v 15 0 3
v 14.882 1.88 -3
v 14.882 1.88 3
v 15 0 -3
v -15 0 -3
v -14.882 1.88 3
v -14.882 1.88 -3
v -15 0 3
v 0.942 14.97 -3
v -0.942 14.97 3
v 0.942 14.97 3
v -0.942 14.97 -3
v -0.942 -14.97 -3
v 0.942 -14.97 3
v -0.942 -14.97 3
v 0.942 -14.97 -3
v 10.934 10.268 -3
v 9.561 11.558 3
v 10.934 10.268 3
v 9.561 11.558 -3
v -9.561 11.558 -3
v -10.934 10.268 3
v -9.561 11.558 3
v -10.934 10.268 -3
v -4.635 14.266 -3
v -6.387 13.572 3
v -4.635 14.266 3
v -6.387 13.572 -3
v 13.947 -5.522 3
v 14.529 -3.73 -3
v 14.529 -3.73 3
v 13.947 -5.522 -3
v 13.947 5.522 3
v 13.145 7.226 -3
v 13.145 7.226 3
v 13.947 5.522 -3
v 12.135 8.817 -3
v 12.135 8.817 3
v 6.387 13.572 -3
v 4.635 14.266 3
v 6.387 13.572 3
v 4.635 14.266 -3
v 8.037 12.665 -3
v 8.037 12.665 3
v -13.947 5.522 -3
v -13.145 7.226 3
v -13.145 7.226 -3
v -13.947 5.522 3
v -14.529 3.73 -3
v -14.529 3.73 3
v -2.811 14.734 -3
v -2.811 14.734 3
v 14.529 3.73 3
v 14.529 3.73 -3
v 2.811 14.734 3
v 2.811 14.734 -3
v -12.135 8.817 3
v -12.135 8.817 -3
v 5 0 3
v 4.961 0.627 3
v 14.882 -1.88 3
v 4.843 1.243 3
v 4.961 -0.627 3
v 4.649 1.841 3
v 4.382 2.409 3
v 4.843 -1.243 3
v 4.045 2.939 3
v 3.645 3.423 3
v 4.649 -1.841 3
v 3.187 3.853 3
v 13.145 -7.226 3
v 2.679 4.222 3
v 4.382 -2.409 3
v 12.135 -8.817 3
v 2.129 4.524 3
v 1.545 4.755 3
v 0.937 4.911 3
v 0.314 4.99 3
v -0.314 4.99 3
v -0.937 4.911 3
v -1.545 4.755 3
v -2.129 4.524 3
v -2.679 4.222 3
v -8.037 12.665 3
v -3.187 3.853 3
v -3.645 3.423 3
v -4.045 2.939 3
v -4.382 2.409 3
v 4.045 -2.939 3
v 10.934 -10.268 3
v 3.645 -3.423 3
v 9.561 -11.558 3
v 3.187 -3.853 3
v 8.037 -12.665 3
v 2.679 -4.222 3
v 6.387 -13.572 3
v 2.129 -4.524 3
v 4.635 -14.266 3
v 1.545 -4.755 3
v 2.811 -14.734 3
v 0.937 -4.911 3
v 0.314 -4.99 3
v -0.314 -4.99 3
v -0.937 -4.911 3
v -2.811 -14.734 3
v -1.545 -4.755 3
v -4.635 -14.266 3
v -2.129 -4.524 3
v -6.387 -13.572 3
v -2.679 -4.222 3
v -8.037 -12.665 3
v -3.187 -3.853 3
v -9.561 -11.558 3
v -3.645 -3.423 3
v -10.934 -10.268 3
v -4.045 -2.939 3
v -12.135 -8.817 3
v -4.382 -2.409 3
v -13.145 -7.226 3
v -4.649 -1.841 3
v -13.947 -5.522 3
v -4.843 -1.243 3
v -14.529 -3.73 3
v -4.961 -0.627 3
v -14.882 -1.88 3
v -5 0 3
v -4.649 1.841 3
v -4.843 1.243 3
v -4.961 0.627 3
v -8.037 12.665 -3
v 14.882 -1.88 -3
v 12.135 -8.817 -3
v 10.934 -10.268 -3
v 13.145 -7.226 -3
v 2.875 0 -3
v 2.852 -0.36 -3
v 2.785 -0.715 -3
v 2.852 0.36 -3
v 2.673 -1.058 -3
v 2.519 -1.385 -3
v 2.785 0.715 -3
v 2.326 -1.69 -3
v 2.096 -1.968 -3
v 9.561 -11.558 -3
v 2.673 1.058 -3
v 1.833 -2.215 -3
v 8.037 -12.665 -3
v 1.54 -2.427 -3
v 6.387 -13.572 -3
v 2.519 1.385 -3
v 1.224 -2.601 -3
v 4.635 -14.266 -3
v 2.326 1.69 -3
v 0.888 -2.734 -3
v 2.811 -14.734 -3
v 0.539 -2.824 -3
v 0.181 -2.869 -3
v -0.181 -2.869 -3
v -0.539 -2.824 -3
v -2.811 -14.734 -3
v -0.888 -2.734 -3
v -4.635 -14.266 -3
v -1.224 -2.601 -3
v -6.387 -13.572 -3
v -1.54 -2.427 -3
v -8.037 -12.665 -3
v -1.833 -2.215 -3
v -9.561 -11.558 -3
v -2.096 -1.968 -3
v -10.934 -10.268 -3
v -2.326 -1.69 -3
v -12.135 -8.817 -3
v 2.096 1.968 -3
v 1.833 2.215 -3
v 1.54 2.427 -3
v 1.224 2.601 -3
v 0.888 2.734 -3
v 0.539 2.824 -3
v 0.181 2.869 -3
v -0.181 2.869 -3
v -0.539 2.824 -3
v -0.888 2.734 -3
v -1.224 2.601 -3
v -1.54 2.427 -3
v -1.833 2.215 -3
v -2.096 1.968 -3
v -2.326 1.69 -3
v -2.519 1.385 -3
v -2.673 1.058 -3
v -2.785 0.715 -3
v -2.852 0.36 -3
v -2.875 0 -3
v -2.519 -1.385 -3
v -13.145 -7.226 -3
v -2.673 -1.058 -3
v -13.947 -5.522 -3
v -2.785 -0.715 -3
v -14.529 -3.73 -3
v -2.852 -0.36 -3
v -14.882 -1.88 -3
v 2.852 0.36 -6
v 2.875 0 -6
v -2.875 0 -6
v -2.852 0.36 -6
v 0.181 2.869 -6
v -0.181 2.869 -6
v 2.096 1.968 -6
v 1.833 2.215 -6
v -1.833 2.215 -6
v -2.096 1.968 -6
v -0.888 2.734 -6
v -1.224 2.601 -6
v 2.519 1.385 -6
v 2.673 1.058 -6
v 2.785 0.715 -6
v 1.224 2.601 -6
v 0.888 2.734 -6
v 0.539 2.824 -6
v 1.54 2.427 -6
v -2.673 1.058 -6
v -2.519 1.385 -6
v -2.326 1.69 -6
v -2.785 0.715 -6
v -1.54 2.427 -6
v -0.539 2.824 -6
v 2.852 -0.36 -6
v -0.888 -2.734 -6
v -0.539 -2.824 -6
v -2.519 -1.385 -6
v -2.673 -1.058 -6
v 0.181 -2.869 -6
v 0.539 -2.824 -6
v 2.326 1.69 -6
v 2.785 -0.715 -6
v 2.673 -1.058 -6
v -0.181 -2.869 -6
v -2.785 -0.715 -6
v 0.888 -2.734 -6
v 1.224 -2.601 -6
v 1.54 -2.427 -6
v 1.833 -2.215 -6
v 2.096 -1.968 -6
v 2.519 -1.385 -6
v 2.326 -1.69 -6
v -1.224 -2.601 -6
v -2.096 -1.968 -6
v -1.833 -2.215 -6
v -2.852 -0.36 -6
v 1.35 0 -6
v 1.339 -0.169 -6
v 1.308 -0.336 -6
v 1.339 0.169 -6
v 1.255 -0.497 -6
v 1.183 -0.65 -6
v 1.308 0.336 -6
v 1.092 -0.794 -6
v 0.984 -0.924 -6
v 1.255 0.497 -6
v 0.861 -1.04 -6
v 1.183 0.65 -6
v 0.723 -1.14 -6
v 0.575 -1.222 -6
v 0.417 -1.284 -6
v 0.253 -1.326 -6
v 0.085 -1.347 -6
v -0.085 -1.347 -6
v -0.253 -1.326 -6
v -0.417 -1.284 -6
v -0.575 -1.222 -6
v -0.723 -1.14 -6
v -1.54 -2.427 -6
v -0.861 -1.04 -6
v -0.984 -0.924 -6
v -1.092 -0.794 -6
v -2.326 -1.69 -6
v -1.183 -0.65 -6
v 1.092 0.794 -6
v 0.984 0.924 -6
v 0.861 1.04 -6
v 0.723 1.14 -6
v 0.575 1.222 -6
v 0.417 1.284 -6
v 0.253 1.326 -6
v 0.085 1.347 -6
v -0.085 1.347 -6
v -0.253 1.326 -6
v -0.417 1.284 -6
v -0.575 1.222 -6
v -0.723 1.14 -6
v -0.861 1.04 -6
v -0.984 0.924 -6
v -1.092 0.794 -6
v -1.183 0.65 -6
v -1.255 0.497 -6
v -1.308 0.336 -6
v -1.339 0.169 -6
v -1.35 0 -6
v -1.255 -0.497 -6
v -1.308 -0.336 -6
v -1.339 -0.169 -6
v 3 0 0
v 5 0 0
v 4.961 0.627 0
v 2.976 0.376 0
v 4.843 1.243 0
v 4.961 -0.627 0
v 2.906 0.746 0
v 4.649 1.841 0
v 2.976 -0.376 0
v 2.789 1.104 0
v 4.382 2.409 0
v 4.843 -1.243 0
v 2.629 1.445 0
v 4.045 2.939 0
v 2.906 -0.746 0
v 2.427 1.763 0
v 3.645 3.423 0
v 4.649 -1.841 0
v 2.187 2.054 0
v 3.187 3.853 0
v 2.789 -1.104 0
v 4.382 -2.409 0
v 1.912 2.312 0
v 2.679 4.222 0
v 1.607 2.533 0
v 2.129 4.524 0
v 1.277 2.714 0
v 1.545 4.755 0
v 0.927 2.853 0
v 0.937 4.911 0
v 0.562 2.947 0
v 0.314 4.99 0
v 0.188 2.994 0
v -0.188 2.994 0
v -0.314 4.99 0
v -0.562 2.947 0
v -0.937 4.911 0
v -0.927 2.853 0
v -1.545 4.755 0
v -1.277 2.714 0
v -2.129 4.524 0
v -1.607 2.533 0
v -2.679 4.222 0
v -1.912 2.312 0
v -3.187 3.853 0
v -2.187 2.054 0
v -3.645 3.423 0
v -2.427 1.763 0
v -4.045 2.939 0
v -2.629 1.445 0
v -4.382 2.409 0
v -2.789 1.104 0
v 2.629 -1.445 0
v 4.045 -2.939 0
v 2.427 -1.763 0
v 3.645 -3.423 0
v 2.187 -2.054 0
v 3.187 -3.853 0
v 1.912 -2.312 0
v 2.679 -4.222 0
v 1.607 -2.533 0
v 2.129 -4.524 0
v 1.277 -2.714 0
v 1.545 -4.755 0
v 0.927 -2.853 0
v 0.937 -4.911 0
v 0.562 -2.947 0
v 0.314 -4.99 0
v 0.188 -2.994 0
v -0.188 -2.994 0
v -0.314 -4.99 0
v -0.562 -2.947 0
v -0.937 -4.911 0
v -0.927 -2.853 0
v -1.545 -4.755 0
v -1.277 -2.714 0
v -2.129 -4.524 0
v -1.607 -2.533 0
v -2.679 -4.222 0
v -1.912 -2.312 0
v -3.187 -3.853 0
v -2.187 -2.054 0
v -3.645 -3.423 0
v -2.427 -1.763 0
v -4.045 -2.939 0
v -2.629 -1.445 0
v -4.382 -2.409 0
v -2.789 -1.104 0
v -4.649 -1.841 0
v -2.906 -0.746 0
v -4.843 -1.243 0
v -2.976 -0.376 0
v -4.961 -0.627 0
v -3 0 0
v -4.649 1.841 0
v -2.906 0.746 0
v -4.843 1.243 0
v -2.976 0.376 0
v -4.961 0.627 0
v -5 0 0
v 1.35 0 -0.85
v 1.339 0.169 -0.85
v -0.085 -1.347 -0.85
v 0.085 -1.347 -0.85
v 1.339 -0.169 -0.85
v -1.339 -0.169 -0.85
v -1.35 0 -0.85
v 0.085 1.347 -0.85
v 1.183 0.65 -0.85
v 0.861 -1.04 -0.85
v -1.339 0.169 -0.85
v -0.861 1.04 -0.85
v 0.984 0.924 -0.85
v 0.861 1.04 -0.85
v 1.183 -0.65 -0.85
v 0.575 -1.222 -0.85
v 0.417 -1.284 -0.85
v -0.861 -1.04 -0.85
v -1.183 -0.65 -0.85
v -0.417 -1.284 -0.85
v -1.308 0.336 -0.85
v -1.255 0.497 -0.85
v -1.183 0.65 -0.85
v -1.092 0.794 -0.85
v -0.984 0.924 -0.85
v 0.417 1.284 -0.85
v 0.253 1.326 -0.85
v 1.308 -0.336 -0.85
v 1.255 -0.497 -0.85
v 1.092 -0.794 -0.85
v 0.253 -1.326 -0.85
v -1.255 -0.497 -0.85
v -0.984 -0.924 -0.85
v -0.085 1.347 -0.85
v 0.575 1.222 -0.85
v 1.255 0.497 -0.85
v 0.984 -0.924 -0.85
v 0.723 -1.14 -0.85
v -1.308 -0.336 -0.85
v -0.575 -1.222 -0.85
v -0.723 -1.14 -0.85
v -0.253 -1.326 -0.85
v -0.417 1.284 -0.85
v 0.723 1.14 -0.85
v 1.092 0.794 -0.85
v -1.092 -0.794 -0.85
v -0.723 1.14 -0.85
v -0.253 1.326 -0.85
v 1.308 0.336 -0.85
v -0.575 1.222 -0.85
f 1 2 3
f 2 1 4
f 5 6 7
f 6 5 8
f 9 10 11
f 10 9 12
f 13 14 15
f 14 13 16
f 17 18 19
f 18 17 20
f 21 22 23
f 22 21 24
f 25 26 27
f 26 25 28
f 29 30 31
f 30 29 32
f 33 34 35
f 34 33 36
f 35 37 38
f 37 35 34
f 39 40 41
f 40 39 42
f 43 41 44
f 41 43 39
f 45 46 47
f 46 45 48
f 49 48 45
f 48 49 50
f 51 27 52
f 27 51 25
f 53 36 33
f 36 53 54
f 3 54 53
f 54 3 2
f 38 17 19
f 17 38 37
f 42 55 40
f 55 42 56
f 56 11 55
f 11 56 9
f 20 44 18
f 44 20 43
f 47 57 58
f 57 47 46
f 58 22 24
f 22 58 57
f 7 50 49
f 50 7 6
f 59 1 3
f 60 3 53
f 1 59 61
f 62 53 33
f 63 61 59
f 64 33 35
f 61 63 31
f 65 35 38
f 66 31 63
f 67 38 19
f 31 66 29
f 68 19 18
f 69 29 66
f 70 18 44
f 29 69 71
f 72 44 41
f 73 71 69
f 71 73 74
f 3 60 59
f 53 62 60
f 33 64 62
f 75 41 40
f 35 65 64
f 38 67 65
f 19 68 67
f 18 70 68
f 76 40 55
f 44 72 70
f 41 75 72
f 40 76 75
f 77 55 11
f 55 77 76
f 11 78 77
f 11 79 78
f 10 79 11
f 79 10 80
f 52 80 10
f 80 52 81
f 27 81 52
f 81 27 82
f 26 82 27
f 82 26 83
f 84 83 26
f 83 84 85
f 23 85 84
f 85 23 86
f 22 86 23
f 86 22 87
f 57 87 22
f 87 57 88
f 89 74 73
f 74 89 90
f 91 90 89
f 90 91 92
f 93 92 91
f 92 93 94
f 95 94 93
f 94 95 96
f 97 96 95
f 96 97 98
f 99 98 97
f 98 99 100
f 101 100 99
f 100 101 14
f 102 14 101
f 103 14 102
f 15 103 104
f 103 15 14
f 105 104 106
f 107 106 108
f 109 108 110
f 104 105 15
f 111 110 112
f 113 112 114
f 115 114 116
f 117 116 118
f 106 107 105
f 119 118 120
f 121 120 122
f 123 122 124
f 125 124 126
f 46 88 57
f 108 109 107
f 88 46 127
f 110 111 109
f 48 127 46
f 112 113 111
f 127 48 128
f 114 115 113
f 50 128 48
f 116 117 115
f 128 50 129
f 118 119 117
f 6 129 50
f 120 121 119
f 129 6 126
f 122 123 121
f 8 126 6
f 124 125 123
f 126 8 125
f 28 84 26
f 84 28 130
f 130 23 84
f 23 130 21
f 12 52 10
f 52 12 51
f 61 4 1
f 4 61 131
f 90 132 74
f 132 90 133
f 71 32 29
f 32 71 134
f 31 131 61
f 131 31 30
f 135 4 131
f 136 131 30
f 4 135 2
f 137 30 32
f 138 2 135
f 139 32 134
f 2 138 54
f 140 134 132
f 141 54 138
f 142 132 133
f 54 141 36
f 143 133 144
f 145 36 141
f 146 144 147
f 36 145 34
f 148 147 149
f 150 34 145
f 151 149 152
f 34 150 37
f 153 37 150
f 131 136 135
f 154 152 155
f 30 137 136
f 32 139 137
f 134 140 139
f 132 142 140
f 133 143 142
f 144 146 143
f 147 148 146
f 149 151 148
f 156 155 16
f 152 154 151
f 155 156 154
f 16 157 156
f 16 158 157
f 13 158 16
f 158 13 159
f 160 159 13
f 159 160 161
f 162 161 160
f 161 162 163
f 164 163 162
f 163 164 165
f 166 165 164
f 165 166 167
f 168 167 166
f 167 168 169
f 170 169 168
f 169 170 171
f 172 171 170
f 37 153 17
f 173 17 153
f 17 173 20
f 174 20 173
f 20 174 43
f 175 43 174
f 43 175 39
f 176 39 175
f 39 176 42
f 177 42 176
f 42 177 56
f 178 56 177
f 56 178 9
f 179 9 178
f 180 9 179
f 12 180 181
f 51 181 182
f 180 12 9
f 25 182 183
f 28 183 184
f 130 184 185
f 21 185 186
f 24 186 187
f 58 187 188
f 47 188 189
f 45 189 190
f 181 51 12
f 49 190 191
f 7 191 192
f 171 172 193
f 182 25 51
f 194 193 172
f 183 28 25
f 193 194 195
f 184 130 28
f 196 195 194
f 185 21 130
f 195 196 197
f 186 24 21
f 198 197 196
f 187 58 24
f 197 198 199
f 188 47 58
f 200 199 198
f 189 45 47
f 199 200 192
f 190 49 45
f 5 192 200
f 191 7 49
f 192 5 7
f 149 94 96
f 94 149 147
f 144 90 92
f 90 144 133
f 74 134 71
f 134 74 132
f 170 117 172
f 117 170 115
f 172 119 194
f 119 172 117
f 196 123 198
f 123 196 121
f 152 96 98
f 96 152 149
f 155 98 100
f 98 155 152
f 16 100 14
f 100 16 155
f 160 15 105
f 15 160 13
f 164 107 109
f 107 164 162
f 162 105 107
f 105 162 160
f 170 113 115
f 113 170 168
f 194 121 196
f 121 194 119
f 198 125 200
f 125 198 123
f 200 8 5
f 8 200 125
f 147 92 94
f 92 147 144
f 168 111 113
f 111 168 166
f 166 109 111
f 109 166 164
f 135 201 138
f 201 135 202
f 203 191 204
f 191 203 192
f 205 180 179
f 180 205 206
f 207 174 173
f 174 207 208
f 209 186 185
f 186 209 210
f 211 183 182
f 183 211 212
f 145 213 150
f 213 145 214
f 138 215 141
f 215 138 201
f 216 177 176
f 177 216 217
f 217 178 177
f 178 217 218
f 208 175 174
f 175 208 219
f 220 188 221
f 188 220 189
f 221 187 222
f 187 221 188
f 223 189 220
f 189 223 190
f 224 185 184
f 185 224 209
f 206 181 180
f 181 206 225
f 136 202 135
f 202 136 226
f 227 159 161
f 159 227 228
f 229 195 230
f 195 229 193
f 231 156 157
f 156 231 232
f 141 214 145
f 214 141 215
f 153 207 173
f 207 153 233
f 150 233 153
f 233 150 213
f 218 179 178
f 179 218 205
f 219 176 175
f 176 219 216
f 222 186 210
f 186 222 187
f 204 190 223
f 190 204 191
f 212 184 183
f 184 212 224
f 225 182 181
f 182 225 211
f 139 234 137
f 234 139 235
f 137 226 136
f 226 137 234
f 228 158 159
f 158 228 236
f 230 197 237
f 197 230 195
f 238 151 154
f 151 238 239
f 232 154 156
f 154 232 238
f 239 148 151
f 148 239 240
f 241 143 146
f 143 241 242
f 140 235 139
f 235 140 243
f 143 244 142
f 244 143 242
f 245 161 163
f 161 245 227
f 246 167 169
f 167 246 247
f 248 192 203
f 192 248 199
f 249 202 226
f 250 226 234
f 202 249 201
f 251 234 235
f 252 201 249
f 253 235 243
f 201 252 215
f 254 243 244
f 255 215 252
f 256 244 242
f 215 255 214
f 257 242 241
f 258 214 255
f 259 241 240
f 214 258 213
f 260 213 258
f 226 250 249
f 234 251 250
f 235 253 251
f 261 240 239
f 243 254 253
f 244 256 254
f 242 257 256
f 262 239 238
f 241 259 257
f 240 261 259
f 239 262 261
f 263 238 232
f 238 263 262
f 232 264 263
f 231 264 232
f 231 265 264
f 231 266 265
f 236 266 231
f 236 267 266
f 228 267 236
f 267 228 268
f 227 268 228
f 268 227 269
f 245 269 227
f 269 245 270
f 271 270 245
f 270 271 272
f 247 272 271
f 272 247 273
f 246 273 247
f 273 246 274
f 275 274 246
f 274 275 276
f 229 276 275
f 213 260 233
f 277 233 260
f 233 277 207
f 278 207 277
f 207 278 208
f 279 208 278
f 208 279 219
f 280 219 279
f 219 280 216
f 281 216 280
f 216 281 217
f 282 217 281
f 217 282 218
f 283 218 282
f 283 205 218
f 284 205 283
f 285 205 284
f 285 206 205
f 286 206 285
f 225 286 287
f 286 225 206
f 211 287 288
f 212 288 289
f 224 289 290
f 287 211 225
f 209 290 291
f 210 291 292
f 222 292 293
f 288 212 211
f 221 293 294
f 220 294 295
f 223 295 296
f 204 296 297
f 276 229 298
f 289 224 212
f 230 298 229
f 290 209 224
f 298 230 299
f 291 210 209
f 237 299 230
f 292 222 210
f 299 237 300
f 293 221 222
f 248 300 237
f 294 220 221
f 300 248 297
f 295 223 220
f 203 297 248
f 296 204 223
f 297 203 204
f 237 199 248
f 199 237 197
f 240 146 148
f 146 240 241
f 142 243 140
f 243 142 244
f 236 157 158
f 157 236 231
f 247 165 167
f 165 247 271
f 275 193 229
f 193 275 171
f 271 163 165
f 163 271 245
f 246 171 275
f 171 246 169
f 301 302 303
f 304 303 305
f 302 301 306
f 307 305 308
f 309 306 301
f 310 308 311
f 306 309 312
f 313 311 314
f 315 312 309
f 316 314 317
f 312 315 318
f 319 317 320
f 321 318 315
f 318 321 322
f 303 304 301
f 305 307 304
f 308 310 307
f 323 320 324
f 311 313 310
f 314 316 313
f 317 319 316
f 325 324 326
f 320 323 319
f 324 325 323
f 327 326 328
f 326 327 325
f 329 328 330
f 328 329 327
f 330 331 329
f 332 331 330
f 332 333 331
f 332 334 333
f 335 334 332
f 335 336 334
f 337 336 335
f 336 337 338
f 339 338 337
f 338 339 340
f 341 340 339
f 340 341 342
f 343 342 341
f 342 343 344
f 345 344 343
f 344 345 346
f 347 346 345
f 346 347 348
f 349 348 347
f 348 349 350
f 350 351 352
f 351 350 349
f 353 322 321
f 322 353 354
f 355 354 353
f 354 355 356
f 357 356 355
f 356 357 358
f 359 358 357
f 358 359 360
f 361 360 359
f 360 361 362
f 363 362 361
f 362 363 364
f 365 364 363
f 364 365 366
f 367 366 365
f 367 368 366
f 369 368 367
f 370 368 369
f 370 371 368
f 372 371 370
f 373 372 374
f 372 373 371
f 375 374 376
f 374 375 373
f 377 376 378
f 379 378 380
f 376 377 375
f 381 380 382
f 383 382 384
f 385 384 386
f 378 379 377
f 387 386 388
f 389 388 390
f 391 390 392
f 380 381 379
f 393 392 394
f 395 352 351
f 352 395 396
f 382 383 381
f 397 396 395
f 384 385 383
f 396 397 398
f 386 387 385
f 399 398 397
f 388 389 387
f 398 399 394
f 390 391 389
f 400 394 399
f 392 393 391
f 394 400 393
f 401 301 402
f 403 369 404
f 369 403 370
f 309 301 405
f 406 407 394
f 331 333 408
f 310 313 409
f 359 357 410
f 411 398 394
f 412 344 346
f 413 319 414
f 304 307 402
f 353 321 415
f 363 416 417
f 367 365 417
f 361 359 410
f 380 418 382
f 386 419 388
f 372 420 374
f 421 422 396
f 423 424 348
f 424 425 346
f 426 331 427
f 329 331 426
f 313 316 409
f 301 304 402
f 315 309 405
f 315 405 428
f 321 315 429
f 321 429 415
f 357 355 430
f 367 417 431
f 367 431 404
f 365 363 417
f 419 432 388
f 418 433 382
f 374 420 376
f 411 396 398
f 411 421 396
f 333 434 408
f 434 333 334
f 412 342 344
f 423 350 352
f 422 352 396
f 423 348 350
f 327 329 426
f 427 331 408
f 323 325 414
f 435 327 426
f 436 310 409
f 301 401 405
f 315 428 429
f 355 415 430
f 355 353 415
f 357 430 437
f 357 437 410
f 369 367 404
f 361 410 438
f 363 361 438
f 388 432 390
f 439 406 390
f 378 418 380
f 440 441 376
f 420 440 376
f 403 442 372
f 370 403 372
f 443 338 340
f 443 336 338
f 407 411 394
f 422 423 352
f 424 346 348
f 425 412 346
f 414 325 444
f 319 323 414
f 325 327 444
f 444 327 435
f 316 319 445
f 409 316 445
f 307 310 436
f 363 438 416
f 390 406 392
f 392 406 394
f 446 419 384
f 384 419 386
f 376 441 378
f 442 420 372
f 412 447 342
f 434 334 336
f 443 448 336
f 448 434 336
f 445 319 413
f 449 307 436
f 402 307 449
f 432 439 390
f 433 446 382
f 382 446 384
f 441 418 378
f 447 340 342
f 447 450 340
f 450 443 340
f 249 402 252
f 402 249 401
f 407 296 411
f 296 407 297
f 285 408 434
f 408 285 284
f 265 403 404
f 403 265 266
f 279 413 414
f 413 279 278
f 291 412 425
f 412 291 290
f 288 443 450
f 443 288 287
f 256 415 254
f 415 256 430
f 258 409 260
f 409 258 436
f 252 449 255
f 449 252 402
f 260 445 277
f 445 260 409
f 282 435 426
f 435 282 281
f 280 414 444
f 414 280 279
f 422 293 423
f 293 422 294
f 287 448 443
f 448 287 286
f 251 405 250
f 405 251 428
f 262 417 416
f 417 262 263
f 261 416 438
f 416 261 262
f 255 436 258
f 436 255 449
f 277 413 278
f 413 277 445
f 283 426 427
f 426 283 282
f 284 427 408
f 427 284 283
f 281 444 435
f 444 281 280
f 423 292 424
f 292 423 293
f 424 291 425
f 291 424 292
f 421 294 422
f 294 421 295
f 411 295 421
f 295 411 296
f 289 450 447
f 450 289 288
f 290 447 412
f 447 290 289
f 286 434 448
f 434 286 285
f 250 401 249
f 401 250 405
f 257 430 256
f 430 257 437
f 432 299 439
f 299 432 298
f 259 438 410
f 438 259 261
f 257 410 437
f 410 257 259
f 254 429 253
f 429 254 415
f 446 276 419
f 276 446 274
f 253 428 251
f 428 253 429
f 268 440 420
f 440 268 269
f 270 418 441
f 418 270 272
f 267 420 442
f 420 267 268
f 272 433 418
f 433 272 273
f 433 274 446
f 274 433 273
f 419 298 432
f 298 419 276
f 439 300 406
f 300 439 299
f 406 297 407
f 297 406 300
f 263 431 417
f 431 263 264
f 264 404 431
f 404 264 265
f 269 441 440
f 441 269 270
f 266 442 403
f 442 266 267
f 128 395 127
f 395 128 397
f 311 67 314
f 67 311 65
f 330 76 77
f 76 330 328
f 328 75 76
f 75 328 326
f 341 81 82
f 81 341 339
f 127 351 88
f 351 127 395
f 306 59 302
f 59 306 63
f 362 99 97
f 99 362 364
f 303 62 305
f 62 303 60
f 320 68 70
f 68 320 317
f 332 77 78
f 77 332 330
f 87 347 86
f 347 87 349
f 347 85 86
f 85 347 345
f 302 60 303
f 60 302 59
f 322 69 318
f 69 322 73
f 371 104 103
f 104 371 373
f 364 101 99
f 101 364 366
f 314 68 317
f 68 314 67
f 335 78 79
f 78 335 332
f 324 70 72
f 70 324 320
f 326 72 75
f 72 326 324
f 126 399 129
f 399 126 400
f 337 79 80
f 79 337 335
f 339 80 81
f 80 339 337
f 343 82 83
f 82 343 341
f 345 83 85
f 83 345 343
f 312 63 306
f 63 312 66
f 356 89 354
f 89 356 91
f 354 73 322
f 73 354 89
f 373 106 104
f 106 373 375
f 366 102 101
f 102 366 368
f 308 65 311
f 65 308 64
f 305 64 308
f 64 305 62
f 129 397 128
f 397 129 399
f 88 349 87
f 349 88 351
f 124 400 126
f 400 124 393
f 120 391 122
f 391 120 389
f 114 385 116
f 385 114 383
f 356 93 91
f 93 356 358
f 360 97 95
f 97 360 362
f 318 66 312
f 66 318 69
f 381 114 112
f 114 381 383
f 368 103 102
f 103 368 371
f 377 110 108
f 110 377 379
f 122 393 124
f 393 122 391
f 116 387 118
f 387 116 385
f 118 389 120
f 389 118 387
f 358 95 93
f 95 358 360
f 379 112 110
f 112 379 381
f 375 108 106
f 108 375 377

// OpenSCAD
$fn = 50;

difference() {
	union() {
		translate(v = [0, 0, -3.0]) {
			cylinder(h = 6, r = 15.0);
		}
		#translate(v = [0, 0, -6.0]) {
			cylinder(h = 6, r = 2.875);
		}
	}
	union() {
		translate(v = [0, 0, 0]) {
			rotate(a = [0, 0, 0]) {
				difference() {
					union() {
						translate(v = [0, 0, -6.0]) {
							cylinder(h = 6, r = 1.0);
						}
						translate(v = [0, 0, -0.85]) {
							cylinder(h = 0.85, r1 = 1.35, r2 = 3.0);
						}
						translate(v = [0, 0, -6.0]) {
							cylinder(h = 6, r = 1.35);
						}
						translate(v = [0, 0, -6.0]) {
							cylinder(h = 6, r = 1.0);
						}
					}
					union();
				}
			}
		}
		#cylinder(h = 3, r = 5.0);
	}
}
